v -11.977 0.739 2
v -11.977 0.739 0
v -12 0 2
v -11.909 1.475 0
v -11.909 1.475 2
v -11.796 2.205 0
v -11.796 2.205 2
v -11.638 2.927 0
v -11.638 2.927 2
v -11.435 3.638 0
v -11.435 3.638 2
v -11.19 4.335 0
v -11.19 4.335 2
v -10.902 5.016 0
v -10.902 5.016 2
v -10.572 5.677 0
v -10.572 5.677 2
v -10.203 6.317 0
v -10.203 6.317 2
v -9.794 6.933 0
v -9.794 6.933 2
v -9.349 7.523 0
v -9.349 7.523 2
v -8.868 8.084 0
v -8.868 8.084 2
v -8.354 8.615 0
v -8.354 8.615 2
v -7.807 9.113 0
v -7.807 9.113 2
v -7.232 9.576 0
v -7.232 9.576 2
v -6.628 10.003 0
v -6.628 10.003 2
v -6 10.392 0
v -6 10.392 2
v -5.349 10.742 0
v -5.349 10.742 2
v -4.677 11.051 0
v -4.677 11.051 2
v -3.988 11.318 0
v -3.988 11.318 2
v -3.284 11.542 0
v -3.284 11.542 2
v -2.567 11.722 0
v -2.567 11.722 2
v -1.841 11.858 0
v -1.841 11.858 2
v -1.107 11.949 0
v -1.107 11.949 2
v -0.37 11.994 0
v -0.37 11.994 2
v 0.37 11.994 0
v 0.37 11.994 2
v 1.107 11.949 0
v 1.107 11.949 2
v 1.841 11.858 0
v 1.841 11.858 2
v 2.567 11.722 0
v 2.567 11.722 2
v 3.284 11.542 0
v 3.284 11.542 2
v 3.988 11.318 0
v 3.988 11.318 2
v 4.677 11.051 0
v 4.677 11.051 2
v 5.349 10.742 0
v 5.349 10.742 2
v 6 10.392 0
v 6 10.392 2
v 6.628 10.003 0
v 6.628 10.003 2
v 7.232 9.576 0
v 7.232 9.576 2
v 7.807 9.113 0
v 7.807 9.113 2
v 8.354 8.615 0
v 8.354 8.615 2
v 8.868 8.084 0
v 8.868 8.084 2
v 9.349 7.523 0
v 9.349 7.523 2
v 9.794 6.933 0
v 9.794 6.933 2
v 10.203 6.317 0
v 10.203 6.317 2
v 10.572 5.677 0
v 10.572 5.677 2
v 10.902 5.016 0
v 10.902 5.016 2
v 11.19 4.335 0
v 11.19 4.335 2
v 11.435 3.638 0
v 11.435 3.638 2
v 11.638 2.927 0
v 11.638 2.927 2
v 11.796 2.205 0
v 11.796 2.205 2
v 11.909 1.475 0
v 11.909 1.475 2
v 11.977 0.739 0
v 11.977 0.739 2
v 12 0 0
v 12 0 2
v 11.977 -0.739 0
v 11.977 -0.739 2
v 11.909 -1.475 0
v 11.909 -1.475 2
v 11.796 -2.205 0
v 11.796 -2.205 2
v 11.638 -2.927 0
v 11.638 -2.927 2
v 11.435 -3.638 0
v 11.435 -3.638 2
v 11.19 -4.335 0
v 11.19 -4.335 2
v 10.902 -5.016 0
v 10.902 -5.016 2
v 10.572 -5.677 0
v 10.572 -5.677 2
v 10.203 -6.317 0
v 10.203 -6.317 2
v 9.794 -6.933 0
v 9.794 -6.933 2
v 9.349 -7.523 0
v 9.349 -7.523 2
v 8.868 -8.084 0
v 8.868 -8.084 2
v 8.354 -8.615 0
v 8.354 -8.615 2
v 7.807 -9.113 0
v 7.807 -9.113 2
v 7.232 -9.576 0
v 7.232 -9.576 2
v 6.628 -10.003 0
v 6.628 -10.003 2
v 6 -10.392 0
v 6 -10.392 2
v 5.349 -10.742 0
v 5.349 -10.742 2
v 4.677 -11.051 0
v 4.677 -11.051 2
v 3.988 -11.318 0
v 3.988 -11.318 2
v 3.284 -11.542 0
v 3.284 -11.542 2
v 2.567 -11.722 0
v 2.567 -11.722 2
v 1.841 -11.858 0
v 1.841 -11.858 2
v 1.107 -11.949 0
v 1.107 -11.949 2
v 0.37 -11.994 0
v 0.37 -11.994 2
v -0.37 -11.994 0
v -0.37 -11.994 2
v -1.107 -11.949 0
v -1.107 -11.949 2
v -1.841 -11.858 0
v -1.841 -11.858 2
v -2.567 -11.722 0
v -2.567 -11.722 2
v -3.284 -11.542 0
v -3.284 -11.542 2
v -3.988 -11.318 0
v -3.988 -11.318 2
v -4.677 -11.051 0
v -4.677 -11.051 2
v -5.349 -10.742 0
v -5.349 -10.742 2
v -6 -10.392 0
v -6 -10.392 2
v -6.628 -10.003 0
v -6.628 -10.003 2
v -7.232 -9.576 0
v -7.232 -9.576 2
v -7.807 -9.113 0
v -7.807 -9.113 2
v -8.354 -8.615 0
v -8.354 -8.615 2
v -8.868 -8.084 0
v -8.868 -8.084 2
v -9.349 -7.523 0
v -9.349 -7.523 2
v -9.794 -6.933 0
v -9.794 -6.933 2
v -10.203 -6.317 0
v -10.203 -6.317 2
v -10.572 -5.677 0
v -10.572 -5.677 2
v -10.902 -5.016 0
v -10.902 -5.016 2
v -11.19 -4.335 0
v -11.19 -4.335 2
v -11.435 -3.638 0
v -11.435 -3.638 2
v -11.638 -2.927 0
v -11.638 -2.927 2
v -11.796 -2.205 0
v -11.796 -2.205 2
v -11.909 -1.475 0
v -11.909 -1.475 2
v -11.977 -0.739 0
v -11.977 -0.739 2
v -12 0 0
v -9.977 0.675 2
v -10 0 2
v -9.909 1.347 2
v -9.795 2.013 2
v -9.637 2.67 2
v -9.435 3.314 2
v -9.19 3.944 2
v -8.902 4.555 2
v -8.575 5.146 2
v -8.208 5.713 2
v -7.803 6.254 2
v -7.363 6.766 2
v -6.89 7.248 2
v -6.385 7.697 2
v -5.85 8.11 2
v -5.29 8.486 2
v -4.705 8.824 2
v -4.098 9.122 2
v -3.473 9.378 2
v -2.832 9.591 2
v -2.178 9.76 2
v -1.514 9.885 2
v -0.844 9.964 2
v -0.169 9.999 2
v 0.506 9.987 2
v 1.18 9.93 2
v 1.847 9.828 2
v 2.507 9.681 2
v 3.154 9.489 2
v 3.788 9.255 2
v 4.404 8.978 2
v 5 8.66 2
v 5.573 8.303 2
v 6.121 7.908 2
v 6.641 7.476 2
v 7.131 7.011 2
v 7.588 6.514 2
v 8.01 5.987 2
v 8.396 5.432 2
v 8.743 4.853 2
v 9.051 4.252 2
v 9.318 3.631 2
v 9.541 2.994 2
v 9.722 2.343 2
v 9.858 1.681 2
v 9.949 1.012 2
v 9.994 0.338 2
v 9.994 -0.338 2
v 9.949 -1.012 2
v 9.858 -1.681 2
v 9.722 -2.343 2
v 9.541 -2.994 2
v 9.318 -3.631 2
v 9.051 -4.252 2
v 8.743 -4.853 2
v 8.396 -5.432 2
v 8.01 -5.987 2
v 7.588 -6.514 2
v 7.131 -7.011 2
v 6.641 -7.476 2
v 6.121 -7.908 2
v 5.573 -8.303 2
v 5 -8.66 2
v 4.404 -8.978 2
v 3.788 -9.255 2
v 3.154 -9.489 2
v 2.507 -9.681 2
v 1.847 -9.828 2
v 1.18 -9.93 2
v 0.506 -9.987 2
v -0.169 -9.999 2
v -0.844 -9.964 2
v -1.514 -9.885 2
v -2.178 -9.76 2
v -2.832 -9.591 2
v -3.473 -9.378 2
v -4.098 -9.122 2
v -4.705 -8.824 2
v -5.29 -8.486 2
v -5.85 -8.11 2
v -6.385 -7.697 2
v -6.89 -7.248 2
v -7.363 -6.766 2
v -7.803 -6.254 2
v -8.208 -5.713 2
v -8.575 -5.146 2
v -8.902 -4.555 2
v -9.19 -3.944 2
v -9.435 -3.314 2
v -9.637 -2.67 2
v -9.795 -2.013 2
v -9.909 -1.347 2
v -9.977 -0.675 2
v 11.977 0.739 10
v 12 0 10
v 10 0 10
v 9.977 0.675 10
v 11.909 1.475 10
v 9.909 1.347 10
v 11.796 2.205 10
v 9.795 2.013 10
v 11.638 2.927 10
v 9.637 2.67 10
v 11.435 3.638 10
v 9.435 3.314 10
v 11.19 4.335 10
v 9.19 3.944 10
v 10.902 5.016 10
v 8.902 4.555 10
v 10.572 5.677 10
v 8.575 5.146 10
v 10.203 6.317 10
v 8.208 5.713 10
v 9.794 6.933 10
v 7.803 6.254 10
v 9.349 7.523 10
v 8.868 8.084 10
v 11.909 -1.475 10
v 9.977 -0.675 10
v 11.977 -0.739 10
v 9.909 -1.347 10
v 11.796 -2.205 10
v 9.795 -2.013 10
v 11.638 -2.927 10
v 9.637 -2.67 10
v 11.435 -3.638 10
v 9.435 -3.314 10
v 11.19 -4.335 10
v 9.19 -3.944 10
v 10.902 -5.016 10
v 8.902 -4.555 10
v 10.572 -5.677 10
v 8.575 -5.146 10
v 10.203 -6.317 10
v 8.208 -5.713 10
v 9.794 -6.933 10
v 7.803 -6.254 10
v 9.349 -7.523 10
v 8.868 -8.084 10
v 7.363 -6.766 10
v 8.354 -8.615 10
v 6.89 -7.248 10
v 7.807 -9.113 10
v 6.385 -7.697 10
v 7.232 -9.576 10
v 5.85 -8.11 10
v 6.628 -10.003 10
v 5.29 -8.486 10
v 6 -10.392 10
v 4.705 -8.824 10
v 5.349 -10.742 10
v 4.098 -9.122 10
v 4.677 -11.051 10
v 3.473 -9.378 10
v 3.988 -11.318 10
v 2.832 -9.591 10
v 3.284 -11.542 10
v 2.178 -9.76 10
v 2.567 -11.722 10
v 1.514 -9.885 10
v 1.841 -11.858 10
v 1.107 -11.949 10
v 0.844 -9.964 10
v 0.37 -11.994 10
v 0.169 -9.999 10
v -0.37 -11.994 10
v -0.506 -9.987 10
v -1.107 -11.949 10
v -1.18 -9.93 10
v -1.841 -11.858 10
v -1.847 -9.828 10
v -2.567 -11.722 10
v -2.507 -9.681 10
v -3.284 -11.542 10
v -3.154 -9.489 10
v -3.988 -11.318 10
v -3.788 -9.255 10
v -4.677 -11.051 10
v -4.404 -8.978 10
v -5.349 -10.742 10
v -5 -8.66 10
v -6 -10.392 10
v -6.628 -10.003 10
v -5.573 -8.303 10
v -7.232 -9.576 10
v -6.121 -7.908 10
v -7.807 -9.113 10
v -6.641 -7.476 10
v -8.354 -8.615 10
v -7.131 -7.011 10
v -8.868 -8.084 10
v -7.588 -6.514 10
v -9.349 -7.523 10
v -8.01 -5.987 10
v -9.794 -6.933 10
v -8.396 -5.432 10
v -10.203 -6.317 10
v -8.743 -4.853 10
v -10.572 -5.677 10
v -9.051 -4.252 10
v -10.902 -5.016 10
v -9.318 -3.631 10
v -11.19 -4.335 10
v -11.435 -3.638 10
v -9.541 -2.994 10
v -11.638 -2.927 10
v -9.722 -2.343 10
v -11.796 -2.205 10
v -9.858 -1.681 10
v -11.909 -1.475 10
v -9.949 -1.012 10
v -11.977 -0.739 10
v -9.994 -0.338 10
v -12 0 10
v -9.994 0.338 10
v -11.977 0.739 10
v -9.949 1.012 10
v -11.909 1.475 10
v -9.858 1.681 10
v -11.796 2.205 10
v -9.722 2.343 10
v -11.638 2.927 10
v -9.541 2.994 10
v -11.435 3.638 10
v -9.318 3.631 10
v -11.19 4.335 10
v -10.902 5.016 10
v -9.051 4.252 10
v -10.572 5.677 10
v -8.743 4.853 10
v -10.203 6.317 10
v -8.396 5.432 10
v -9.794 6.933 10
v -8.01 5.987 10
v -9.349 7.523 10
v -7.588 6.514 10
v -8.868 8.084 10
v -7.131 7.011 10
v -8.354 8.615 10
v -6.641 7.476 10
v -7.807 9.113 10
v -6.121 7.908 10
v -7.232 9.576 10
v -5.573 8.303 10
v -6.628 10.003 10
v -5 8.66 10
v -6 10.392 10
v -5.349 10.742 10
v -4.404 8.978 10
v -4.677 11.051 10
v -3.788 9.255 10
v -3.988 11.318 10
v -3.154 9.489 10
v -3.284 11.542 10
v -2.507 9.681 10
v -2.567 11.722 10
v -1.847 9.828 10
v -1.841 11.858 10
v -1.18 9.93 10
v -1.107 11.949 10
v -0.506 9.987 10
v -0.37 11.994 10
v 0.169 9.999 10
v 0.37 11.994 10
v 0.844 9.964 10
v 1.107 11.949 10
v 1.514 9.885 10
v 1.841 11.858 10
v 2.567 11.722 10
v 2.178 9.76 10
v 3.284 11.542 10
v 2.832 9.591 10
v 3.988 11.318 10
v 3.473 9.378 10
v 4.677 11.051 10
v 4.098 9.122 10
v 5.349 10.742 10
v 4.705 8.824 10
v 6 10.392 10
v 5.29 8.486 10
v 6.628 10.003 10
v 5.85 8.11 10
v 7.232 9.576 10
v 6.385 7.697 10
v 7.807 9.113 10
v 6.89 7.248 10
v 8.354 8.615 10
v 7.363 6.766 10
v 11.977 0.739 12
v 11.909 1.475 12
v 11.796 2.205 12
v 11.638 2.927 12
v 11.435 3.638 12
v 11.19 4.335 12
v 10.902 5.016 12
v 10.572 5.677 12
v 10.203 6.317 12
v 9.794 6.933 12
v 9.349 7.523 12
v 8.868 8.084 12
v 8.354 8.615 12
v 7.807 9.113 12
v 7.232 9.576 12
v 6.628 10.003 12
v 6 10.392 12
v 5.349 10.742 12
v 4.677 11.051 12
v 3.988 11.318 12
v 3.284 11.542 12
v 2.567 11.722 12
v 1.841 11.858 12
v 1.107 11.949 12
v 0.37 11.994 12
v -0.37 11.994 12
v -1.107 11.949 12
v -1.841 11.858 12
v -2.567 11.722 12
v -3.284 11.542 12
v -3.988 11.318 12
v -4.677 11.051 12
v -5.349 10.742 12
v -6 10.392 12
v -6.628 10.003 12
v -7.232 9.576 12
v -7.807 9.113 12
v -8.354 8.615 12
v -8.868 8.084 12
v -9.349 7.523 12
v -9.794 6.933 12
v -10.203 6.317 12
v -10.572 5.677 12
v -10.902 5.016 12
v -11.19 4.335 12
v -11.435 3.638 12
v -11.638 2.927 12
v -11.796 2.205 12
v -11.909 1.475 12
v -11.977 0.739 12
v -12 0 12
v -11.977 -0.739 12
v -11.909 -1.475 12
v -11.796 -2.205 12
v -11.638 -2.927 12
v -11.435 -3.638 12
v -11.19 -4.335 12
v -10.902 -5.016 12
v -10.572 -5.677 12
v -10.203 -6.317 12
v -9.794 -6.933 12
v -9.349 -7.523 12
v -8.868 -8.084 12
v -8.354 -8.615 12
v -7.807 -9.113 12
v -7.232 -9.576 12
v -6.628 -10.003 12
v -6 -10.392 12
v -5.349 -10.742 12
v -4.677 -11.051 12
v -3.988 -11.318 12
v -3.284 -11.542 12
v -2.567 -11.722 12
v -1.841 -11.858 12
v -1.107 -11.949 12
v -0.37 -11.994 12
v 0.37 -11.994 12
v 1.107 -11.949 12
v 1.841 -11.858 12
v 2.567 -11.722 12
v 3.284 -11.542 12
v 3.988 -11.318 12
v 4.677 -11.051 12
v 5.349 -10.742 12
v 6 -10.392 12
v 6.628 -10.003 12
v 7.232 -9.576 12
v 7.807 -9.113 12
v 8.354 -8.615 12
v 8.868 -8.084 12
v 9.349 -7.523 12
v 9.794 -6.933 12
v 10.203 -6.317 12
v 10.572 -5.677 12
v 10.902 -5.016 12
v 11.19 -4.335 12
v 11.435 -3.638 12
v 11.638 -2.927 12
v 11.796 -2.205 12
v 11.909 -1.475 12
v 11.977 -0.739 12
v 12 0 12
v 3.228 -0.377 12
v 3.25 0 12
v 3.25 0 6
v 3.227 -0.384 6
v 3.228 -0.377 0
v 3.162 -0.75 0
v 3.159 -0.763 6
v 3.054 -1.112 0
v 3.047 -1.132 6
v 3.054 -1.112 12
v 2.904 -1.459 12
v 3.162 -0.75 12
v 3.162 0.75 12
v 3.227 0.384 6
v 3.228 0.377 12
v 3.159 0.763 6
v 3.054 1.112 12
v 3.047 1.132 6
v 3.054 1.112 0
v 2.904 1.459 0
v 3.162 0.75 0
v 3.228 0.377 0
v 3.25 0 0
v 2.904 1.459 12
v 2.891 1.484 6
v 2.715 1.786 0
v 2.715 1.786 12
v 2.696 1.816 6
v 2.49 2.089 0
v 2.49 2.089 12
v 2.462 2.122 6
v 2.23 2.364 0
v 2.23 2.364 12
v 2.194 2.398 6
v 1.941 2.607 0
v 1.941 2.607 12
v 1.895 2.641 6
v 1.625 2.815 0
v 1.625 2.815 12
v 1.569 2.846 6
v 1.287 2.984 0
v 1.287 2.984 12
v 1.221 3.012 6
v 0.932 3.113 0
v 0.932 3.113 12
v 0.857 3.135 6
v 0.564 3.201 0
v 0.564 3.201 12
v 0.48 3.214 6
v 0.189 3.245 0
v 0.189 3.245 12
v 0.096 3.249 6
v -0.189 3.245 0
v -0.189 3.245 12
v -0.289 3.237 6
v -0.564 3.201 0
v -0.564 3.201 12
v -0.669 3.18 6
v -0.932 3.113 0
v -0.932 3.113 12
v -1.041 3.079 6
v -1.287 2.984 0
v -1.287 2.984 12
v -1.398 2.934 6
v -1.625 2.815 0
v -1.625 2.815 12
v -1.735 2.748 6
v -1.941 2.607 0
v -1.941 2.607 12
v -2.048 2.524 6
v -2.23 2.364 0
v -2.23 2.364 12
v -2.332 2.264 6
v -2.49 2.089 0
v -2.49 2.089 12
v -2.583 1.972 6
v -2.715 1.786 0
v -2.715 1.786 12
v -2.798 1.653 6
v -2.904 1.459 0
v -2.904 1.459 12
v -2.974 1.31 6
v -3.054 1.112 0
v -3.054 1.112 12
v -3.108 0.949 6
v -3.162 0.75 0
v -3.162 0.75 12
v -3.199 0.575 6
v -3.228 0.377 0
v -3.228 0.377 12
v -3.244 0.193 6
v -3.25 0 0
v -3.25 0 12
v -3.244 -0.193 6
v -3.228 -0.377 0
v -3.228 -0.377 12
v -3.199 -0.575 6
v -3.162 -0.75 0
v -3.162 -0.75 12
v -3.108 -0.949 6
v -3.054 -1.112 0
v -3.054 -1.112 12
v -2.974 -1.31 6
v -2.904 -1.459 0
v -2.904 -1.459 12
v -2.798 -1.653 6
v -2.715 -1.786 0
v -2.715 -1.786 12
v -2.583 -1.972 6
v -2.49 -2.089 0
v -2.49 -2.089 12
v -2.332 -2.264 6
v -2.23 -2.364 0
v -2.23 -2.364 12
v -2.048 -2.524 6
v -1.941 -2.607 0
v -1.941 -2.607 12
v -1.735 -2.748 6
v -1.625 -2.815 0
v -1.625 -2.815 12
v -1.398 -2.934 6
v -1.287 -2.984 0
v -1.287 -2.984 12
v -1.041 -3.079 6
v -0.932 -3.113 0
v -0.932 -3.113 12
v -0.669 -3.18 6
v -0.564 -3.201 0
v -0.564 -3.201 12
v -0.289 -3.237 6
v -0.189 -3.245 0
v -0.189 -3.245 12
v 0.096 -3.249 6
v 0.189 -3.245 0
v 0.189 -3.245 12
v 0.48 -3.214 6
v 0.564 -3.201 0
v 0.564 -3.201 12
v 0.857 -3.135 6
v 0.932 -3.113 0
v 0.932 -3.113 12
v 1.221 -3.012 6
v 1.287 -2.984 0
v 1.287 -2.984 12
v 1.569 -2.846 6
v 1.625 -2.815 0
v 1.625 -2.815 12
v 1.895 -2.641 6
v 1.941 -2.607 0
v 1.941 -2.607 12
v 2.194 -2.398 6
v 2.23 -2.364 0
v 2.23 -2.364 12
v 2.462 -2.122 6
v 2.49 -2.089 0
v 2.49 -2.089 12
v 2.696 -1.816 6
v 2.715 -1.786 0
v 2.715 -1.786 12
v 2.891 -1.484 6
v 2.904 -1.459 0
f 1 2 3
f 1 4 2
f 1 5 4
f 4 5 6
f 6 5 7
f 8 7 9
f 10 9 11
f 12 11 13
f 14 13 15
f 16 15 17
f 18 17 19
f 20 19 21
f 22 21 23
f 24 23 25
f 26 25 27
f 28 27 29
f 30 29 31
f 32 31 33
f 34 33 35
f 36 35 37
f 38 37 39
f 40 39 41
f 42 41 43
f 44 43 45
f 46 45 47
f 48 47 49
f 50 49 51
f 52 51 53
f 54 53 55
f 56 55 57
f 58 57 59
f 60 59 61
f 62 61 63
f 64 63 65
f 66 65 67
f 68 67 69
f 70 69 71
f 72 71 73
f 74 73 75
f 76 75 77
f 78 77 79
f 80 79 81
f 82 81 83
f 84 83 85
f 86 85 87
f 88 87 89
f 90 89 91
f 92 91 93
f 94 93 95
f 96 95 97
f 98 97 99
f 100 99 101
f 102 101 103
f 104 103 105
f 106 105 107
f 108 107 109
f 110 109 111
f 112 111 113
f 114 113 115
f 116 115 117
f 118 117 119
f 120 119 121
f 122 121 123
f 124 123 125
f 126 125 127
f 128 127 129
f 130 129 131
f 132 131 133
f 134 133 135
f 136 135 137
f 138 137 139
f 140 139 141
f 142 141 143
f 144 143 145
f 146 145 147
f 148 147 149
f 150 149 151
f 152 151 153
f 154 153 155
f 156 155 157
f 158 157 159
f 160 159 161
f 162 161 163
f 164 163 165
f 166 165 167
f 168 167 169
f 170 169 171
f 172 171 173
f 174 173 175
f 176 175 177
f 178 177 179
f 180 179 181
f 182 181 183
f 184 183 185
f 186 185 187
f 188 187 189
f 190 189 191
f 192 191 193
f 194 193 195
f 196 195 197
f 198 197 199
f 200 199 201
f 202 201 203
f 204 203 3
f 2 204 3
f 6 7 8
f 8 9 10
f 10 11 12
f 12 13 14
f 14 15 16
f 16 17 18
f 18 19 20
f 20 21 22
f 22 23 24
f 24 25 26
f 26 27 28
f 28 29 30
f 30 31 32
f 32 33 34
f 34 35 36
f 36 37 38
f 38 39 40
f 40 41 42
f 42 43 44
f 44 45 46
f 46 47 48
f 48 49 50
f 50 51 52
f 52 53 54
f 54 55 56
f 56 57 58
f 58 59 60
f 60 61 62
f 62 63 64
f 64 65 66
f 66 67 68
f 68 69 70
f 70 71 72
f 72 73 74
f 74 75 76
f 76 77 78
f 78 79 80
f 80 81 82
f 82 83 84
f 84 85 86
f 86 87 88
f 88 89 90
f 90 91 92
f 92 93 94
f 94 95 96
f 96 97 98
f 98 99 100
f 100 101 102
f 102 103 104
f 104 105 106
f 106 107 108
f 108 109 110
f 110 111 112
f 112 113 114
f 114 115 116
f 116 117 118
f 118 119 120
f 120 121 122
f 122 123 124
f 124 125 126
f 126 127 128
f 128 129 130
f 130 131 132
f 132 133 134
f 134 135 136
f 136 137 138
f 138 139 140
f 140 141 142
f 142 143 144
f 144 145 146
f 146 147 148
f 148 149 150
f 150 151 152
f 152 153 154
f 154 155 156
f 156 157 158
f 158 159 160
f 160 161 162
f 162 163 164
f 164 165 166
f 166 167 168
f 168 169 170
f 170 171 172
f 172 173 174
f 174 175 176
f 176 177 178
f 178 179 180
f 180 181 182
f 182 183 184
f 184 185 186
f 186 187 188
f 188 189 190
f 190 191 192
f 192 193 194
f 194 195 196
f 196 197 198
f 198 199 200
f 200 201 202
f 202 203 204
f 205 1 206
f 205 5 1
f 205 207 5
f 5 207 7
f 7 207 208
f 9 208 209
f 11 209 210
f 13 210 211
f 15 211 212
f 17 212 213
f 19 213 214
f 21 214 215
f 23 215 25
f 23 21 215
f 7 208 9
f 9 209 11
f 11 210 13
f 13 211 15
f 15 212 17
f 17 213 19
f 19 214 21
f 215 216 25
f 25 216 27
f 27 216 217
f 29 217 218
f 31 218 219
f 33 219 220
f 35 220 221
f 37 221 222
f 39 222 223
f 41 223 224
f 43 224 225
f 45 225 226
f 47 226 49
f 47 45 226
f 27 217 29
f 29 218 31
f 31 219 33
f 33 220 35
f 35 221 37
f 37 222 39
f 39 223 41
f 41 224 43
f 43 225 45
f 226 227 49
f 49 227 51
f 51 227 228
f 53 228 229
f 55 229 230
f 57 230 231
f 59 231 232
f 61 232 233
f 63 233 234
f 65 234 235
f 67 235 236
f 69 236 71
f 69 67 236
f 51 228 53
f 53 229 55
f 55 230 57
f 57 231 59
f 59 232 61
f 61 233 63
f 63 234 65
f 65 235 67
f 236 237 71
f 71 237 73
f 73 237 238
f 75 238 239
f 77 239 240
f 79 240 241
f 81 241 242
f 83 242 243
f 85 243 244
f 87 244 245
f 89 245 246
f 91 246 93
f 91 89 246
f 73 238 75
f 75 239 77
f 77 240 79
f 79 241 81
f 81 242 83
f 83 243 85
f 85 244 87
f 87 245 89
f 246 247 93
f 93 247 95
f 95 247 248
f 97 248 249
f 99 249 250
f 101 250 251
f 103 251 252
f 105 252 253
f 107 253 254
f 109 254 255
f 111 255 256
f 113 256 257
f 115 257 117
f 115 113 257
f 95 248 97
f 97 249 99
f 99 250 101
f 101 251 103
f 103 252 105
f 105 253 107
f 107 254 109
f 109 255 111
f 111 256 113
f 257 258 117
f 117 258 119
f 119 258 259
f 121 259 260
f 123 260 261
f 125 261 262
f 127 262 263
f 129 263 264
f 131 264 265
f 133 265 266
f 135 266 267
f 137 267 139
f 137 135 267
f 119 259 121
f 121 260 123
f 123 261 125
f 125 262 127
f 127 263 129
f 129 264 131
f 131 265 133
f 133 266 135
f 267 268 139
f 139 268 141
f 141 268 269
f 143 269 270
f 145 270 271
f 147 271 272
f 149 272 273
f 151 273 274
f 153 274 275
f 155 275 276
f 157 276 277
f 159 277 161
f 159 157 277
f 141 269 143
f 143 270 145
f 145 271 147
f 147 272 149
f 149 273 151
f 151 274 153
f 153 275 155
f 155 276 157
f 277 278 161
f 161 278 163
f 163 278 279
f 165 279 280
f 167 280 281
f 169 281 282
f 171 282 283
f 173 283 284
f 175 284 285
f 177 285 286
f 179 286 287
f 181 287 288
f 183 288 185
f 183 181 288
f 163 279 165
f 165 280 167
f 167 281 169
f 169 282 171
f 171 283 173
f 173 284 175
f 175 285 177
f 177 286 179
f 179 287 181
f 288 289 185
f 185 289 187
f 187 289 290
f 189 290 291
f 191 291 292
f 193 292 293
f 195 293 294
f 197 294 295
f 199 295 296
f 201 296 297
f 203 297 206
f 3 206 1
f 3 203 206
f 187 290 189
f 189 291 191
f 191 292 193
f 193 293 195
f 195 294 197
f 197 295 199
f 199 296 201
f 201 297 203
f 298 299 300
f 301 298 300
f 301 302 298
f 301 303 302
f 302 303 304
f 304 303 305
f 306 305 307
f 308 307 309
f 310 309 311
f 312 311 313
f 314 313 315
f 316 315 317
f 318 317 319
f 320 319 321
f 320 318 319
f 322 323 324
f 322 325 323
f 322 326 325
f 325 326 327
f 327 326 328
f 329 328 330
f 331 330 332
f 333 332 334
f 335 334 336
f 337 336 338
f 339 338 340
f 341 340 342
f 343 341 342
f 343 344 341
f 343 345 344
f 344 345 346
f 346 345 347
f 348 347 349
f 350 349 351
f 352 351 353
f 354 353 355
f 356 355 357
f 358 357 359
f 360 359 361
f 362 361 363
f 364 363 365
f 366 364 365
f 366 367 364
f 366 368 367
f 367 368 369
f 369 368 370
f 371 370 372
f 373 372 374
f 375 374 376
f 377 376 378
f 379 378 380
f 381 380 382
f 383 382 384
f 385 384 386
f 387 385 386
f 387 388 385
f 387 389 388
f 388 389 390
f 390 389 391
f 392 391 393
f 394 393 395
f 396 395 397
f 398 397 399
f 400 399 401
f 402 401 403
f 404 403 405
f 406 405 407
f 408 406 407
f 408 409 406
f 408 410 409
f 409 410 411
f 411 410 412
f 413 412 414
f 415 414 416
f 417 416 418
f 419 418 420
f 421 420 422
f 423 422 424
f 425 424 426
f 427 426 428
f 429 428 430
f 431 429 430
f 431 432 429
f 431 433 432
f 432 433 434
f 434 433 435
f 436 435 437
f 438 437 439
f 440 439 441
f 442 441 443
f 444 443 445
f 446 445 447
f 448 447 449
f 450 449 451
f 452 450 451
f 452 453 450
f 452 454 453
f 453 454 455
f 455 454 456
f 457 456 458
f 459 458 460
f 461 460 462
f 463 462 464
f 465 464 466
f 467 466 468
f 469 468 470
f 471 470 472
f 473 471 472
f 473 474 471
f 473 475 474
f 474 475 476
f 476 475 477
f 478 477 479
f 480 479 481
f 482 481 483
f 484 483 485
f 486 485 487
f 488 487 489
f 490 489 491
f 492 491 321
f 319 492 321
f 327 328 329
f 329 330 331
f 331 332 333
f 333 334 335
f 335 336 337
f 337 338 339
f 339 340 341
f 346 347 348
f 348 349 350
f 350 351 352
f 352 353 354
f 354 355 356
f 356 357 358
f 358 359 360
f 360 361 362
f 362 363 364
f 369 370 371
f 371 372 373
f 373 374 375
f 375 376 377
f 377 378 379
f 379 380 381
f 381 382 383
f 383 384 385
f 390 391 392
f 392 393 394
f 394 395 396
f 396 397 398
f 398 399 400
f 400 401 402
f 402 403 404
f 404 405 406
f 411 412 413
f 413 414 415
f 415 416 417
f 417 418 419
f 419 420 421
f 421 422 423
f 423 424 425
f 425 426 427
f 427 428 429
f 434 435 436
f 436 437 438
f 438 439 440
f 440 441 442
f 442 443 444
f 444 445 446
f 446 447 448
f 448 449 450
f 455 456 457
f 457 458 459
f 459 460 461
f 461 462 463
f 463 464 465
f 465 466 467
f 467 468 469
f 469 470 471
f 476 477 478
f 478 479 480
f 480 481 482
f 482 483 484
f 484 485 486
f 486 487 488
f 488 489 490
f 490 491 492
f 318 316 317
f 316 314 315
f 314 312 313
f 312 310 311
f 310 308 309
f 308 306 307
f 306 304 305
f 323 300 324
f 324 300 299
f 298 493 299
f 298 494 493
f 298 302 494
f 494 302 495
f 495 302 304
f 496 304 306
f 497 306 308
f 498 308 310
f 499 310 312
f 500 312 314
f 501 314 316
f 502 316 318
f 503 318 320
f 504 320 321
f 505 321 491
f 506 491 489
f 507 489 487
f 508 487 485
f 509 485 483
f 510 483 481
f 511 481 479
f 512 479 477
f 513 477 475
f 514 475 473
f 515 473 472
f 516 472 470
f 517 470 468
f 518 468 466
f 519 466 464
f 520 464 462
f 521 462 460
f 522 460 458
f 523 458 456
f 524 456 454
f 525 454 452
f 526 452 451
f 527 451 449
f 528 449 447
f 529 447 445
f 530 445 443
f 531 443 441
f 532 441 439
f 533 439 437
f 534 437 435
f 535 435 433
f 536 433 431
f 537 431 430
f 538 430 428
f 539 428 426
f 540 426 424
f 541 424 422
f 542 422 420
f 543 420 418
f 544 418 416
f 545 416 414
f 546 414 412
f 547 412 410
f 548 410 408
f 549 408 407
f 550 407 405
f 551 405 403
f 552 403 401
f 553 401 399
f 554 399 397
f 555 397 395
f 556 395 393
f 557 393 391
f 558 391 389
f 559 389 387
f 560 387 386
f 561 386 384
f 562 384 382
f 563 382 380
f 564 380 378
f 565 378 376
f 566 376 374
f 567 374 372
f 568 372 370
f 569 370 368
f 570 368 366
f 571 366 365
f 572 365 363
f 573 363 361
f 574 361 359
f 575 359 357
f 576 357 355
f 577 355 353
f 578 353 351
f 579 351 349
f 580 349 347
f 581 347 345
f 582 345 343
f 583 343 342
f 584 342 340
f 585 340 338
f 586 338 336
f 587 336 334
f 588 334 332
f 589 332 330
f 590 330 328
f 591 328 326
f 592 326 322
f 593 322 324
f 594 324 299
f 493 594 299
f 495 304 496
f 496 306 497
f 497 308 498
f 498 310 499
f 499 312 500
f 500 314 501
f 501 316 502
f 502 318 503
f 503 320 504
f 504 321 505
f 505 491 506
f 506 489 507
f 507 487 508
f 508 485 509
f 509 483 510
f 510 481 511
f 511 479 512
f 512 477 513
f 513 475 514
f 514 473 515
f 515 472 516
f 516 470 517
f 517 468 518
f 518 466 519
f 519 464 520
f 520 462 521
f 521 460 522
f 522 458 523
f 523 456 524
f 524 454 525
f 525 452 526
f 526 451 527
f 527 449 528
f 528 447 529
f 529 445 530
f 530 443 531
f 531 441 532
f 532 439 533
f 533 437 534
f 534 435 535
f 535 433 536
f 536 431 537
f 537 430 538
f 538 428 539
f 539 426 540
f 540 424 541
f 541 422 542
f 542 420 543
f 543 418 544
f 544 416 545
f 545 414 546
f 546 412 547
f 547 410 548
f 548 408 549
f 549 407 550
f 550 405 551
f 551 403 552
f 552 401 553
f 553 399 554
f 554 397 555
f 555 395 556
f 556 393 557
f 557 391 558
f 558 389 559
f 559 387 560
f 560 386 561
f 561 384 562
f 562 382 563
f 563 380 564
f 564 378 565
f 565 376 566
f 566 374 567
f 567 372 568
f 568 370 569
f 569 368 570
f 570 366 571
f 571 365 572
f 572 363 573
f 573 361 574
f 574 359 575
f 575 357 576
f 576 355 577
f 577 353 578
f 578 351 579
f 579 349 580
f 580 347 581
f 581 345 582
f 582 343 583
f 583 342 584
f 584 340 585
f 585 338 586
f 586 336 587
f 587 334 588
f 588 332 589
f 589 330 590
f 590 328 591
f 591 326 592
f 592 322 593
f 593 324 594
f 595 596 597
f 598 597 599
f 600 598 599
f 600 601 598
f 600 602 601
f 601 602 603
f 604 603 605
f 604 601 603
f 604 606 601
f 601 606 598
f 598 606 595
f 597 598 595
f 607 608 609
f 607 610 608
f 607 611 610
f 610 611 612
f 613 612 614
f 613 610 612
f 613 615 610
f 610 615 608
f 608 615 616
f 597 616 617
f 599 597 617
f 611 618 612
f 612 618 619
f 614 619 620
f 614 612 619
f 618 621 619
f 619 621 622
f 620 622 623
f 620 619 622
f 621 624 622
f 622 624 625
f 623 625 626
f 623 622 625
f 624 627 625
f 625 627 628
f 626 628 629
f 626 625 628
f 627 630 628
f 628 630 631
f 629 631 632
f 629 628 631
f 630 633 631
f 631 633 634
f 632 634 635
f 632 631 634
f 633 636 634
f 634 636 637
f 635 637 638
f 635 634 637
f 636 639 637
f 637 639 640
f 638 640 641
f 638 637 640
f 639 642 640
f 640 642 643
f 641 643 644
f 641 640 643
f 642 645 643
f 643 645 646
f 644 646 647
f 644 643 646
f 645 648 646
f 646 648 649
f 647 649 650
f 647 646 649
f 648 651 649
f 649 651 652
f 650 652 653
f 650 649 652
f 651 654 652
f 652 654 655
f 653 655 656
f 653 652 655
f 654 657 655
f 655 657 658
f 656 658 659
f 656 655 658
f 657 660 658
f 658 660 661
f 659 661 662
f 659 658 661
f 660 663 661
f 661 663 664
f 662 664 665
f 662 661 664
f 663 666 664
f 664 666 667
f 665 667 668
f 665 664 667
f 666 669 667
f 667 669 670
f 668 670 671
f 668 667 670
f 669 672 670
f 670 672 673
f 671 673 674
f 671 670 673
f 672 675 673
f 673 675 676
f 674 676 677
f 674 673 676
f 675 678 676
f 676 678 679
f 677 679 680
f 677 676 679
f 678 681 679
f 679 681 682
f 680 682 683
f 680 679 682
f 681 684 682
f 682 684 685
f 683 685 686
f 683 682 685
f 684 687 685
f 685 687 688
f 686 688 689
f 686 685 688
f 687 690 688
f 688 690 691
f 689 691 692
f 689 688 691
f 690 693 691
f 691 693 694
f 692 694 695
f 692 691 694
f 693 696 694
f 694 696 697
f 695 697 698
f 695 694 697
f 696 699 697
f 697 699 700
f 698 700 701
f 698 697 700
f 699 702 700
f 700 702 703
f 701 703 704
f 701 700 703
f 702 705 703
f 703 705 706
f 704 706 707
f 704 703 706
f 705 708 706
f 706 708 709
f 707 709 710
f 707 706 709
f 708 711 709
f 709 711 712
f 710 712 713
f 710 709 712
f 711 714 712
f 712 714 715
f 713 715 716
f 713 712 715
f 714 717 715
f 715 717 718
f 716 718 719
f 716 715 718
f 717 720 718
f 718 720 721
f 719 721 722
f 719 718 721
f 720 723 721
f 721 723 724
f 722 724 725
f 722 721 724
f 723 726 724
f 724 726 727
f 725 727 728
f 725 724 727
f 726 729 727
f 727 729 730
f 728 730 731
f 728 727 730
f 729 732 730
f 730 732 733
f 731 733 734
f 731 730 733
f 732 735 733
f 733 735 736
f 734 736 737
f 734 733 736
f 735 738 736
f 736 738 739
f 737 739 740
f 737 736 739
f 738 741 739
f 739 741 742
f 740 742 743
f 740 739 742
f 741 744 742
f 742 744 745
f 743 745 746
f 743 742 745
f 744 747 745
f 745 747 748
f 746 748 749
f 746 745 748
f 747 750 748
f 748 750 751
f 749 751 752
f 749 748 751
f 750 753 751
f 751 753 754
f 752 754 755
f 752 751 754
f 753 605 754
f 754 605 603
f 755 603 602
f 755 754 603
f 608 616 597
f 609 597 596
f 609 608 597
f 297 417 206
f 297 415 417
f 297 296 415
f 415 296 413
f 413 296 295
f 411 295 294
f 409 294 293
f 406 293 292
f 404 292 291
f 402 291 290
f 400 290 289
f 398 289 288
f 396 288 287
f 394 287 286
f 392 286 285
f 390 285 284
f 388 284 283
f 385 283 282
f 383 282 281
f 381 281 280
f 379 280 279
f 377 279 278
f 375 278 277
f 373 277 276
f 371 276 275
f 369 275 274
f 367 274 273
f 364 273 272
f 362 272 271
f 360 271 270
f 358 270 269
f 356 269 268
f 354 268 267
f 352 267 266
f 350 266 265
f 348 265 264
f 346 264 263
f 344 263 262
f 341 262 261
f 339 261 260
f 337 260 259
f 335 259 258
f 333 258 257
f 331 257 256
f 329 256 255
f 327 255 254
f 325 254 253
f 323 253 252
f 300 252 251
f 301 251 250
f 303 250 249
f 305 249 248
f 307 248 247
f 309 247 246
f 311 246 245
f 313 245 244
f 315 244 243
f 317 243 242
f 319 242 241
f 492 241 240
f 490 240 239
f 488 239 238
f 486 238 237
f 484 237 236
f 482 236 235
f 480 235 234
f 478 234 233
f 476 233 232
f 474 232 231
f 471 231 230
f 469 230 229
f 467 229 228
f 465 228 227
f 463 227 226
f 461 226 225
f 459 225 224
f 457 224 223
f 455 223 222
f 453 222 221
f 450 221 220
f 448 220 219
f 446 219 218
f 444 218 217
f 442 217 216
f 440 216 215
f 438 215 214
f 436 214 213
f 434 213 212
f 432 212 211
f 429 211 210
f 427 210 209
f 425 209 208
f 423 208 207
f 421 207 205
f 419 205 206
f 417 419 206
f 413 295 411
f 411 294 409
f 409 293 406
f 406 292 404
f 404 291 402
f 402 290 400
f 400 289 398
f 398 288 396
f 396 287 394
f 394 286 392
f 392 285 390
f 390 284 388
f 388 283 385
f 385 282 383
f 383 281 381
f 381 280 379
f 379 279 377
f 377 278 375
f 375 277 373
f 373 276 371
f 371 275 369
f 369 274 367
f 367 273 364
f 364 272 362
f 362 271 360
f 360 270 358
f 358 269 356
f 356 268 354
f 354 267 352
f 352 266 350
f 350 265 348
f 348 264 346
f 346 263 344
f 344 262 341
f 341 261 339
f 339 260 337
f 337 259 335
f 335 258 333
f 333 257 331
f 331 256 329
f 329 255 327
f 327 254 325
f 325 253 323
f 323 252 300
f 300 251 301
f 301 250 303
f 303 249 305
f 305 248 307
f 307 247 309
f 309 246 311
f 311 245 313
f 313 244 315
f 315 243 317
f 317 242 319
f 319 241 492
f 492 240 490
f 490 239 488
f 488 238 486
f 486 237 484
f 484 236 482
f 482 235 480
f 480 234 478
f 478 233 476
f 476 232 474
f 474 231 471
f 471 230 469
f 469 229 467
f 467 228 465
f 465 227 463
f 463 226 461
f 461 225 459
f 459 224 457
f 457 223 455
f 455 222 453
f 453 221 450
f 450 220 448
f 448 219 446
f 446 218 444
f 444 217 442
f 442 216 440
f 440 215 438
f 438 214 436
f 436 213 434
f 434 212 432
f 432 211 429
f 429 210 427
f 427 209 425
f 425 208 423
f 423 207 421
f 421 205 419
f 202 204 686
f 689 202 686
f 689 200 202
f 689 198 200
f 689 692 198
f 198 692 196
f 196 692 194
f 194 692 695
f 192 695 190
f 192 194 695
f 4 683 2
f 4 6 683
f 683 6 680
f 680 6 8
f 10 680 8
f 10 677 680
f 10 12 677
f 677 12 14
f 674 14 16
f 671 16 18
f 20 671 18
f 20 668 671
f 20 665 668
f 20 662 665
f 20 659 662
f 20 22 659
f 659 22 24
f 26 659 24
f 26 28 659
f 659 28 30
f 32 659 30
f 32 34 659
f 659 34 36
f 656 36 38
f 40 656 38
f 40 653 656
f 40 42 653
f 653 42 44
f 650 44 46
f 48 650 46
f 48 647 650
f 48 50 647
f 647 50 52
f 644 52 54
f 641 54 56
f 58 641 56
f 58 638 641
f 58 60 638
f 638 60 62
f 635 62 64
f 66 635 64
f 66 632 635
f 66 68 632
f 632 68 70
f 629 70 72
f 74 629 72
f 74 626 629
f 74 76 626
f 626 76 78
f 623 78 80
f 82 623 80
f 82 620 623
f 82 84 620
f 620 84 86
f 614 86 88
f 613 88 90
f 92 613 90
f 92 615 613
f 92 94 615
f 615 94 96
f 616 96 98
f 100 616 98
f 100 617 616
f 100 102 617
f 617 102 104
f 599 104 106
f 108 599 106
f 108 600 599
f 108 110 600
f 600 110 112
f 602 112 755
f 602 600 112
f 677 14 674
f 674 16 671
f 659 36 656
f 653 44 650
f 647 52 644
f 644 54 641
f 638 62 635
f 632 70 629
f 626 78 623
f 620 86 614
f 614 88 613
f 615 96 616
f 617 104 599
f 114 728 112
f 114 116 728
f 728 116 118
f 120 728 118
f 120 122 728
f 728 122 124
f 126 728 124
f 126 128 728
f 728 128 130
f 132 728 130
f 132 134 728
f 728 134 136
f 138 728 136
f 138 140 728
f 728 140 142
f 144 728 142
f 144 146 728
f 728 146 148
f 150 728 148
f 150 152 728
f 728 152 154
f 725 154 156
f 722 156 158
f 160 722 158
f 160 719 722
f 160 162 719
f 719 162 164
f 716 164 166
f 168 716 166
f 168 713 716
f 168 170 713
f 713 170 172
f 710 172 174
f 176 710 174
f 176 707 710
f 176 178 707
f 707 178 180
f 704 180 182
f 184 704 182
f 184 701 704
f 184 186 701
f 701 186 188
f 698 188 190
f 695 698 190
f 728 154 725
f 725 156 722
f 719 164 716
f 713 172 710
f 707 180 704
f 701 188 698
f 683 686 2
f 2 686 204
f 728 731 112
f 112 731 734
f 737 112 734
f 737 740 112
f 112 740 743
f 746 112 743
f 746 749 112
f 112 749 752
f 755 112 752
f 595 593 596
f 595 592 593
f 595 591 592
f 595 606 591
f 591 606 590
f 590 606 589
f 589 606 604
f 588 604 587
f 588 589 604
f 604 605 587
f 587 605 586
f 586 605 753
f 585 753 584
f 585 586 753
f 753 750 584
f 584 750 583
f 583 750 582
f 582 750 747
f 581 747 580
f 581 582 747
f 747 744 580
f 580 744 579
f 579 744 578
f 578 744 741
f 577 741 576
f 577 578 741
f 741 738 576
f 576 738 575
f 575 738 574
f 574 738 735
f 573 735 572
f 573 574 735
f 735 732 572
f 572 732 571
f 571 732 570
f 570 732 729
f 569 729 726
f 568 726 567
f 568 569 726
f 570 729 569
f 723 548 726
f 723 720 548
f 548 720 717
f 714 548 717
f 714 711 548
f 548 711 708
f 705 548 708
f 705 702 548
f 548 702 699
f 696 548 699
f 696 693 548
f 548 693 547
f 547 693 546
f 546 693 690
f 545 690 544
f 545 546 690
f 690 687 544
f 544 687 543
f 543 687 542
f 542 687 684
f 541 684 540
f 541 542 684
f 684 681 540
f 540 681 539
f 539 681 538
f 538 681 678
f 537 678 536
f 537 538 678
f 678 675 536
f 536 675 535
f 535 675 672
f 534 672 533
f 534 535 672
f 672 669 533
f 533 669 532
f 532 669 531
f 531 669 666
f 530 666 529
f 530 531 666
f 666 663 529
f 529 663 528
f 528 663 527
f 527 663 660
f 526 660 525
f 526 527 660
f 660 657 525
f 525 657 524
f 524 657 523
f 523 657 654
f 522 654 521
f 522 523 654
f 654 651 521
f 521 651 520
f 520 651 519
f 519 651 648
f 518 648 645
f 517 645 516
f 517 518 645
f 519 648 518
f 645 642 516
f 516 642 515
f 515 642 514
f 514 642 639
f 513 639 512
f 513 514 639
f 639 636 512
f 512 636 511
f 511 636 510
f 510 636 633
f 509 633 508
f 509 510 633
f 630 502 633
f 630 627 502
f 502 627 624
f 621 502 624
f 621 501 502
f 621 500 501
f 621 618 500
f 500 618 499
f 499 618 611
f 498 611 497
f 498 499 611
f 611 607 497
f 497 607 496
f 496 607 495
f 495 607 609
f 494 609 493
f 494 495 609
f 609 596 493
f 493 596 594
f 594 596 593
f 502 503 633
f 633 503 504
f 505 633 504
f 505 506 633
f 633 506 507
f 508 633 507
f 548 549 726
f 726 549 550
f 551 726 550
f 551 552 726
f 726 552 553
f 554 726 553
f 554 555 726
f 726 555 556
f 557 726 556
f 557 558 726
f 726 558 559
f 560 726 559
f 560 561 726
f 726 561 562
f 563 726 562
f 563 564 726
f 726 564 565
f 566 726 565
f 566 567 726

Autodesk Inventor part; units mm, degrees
ref_plane "YZ Plane" through (0, 0, 0) normal (1, 0, 0) x (0, 1, 0)
ref_plane "XZ Plane" through (0, 0, 0) normal (0, 1, 0) x (-1, 0, 0)
ref_plane "XY Plane" through (0, 0, 0) normal (0, 0, 1) x (1, 0, 0)
sketch "Sketch1" plane through (0, 0, 0) normal (0, 0, 1) x (1, 0, 0)
  circle A0 centre (0, 0) radius 10
  circle A1 centre (0, 0) radius 3.25
  dimension "d0" = 20
  dimension "d1" = 6.5
extrude "Extrusion1" add sketch "Sketch1" along normal blind 12
sketch "Sketch2" plane through (0, 0, 12) normal (0, 0, 1) x (1, 0, 0)
  circle A0 centre (0, 0) radius 12
  dimension "d4" = 24
extrude "Extrusion2" add sketch "Sketch2" against normal blind 2
sketch "Sketch3" plane through (0, 0, 12) normal (0, 0, 1) x (1, 0, 0)
  circle A0 centre (0, 0) radius 3.25
  dimension "d7" = 6.5
sketch "Sketch4" plane through (0, 0, 0) normal (0, 0, -1) x (-1, 0, 0)
  circle A0 centre (0, 0) radius 12
  circle A1 centre (0, 0) radius 10
  dimension "d8" = 24
extrude "Extrusion3" add sketch "Sketch4" against normal blind 2
extrude "Extrusion4" cut sketch "Sketch3" against normal through all
properties part number "poulie v2"
